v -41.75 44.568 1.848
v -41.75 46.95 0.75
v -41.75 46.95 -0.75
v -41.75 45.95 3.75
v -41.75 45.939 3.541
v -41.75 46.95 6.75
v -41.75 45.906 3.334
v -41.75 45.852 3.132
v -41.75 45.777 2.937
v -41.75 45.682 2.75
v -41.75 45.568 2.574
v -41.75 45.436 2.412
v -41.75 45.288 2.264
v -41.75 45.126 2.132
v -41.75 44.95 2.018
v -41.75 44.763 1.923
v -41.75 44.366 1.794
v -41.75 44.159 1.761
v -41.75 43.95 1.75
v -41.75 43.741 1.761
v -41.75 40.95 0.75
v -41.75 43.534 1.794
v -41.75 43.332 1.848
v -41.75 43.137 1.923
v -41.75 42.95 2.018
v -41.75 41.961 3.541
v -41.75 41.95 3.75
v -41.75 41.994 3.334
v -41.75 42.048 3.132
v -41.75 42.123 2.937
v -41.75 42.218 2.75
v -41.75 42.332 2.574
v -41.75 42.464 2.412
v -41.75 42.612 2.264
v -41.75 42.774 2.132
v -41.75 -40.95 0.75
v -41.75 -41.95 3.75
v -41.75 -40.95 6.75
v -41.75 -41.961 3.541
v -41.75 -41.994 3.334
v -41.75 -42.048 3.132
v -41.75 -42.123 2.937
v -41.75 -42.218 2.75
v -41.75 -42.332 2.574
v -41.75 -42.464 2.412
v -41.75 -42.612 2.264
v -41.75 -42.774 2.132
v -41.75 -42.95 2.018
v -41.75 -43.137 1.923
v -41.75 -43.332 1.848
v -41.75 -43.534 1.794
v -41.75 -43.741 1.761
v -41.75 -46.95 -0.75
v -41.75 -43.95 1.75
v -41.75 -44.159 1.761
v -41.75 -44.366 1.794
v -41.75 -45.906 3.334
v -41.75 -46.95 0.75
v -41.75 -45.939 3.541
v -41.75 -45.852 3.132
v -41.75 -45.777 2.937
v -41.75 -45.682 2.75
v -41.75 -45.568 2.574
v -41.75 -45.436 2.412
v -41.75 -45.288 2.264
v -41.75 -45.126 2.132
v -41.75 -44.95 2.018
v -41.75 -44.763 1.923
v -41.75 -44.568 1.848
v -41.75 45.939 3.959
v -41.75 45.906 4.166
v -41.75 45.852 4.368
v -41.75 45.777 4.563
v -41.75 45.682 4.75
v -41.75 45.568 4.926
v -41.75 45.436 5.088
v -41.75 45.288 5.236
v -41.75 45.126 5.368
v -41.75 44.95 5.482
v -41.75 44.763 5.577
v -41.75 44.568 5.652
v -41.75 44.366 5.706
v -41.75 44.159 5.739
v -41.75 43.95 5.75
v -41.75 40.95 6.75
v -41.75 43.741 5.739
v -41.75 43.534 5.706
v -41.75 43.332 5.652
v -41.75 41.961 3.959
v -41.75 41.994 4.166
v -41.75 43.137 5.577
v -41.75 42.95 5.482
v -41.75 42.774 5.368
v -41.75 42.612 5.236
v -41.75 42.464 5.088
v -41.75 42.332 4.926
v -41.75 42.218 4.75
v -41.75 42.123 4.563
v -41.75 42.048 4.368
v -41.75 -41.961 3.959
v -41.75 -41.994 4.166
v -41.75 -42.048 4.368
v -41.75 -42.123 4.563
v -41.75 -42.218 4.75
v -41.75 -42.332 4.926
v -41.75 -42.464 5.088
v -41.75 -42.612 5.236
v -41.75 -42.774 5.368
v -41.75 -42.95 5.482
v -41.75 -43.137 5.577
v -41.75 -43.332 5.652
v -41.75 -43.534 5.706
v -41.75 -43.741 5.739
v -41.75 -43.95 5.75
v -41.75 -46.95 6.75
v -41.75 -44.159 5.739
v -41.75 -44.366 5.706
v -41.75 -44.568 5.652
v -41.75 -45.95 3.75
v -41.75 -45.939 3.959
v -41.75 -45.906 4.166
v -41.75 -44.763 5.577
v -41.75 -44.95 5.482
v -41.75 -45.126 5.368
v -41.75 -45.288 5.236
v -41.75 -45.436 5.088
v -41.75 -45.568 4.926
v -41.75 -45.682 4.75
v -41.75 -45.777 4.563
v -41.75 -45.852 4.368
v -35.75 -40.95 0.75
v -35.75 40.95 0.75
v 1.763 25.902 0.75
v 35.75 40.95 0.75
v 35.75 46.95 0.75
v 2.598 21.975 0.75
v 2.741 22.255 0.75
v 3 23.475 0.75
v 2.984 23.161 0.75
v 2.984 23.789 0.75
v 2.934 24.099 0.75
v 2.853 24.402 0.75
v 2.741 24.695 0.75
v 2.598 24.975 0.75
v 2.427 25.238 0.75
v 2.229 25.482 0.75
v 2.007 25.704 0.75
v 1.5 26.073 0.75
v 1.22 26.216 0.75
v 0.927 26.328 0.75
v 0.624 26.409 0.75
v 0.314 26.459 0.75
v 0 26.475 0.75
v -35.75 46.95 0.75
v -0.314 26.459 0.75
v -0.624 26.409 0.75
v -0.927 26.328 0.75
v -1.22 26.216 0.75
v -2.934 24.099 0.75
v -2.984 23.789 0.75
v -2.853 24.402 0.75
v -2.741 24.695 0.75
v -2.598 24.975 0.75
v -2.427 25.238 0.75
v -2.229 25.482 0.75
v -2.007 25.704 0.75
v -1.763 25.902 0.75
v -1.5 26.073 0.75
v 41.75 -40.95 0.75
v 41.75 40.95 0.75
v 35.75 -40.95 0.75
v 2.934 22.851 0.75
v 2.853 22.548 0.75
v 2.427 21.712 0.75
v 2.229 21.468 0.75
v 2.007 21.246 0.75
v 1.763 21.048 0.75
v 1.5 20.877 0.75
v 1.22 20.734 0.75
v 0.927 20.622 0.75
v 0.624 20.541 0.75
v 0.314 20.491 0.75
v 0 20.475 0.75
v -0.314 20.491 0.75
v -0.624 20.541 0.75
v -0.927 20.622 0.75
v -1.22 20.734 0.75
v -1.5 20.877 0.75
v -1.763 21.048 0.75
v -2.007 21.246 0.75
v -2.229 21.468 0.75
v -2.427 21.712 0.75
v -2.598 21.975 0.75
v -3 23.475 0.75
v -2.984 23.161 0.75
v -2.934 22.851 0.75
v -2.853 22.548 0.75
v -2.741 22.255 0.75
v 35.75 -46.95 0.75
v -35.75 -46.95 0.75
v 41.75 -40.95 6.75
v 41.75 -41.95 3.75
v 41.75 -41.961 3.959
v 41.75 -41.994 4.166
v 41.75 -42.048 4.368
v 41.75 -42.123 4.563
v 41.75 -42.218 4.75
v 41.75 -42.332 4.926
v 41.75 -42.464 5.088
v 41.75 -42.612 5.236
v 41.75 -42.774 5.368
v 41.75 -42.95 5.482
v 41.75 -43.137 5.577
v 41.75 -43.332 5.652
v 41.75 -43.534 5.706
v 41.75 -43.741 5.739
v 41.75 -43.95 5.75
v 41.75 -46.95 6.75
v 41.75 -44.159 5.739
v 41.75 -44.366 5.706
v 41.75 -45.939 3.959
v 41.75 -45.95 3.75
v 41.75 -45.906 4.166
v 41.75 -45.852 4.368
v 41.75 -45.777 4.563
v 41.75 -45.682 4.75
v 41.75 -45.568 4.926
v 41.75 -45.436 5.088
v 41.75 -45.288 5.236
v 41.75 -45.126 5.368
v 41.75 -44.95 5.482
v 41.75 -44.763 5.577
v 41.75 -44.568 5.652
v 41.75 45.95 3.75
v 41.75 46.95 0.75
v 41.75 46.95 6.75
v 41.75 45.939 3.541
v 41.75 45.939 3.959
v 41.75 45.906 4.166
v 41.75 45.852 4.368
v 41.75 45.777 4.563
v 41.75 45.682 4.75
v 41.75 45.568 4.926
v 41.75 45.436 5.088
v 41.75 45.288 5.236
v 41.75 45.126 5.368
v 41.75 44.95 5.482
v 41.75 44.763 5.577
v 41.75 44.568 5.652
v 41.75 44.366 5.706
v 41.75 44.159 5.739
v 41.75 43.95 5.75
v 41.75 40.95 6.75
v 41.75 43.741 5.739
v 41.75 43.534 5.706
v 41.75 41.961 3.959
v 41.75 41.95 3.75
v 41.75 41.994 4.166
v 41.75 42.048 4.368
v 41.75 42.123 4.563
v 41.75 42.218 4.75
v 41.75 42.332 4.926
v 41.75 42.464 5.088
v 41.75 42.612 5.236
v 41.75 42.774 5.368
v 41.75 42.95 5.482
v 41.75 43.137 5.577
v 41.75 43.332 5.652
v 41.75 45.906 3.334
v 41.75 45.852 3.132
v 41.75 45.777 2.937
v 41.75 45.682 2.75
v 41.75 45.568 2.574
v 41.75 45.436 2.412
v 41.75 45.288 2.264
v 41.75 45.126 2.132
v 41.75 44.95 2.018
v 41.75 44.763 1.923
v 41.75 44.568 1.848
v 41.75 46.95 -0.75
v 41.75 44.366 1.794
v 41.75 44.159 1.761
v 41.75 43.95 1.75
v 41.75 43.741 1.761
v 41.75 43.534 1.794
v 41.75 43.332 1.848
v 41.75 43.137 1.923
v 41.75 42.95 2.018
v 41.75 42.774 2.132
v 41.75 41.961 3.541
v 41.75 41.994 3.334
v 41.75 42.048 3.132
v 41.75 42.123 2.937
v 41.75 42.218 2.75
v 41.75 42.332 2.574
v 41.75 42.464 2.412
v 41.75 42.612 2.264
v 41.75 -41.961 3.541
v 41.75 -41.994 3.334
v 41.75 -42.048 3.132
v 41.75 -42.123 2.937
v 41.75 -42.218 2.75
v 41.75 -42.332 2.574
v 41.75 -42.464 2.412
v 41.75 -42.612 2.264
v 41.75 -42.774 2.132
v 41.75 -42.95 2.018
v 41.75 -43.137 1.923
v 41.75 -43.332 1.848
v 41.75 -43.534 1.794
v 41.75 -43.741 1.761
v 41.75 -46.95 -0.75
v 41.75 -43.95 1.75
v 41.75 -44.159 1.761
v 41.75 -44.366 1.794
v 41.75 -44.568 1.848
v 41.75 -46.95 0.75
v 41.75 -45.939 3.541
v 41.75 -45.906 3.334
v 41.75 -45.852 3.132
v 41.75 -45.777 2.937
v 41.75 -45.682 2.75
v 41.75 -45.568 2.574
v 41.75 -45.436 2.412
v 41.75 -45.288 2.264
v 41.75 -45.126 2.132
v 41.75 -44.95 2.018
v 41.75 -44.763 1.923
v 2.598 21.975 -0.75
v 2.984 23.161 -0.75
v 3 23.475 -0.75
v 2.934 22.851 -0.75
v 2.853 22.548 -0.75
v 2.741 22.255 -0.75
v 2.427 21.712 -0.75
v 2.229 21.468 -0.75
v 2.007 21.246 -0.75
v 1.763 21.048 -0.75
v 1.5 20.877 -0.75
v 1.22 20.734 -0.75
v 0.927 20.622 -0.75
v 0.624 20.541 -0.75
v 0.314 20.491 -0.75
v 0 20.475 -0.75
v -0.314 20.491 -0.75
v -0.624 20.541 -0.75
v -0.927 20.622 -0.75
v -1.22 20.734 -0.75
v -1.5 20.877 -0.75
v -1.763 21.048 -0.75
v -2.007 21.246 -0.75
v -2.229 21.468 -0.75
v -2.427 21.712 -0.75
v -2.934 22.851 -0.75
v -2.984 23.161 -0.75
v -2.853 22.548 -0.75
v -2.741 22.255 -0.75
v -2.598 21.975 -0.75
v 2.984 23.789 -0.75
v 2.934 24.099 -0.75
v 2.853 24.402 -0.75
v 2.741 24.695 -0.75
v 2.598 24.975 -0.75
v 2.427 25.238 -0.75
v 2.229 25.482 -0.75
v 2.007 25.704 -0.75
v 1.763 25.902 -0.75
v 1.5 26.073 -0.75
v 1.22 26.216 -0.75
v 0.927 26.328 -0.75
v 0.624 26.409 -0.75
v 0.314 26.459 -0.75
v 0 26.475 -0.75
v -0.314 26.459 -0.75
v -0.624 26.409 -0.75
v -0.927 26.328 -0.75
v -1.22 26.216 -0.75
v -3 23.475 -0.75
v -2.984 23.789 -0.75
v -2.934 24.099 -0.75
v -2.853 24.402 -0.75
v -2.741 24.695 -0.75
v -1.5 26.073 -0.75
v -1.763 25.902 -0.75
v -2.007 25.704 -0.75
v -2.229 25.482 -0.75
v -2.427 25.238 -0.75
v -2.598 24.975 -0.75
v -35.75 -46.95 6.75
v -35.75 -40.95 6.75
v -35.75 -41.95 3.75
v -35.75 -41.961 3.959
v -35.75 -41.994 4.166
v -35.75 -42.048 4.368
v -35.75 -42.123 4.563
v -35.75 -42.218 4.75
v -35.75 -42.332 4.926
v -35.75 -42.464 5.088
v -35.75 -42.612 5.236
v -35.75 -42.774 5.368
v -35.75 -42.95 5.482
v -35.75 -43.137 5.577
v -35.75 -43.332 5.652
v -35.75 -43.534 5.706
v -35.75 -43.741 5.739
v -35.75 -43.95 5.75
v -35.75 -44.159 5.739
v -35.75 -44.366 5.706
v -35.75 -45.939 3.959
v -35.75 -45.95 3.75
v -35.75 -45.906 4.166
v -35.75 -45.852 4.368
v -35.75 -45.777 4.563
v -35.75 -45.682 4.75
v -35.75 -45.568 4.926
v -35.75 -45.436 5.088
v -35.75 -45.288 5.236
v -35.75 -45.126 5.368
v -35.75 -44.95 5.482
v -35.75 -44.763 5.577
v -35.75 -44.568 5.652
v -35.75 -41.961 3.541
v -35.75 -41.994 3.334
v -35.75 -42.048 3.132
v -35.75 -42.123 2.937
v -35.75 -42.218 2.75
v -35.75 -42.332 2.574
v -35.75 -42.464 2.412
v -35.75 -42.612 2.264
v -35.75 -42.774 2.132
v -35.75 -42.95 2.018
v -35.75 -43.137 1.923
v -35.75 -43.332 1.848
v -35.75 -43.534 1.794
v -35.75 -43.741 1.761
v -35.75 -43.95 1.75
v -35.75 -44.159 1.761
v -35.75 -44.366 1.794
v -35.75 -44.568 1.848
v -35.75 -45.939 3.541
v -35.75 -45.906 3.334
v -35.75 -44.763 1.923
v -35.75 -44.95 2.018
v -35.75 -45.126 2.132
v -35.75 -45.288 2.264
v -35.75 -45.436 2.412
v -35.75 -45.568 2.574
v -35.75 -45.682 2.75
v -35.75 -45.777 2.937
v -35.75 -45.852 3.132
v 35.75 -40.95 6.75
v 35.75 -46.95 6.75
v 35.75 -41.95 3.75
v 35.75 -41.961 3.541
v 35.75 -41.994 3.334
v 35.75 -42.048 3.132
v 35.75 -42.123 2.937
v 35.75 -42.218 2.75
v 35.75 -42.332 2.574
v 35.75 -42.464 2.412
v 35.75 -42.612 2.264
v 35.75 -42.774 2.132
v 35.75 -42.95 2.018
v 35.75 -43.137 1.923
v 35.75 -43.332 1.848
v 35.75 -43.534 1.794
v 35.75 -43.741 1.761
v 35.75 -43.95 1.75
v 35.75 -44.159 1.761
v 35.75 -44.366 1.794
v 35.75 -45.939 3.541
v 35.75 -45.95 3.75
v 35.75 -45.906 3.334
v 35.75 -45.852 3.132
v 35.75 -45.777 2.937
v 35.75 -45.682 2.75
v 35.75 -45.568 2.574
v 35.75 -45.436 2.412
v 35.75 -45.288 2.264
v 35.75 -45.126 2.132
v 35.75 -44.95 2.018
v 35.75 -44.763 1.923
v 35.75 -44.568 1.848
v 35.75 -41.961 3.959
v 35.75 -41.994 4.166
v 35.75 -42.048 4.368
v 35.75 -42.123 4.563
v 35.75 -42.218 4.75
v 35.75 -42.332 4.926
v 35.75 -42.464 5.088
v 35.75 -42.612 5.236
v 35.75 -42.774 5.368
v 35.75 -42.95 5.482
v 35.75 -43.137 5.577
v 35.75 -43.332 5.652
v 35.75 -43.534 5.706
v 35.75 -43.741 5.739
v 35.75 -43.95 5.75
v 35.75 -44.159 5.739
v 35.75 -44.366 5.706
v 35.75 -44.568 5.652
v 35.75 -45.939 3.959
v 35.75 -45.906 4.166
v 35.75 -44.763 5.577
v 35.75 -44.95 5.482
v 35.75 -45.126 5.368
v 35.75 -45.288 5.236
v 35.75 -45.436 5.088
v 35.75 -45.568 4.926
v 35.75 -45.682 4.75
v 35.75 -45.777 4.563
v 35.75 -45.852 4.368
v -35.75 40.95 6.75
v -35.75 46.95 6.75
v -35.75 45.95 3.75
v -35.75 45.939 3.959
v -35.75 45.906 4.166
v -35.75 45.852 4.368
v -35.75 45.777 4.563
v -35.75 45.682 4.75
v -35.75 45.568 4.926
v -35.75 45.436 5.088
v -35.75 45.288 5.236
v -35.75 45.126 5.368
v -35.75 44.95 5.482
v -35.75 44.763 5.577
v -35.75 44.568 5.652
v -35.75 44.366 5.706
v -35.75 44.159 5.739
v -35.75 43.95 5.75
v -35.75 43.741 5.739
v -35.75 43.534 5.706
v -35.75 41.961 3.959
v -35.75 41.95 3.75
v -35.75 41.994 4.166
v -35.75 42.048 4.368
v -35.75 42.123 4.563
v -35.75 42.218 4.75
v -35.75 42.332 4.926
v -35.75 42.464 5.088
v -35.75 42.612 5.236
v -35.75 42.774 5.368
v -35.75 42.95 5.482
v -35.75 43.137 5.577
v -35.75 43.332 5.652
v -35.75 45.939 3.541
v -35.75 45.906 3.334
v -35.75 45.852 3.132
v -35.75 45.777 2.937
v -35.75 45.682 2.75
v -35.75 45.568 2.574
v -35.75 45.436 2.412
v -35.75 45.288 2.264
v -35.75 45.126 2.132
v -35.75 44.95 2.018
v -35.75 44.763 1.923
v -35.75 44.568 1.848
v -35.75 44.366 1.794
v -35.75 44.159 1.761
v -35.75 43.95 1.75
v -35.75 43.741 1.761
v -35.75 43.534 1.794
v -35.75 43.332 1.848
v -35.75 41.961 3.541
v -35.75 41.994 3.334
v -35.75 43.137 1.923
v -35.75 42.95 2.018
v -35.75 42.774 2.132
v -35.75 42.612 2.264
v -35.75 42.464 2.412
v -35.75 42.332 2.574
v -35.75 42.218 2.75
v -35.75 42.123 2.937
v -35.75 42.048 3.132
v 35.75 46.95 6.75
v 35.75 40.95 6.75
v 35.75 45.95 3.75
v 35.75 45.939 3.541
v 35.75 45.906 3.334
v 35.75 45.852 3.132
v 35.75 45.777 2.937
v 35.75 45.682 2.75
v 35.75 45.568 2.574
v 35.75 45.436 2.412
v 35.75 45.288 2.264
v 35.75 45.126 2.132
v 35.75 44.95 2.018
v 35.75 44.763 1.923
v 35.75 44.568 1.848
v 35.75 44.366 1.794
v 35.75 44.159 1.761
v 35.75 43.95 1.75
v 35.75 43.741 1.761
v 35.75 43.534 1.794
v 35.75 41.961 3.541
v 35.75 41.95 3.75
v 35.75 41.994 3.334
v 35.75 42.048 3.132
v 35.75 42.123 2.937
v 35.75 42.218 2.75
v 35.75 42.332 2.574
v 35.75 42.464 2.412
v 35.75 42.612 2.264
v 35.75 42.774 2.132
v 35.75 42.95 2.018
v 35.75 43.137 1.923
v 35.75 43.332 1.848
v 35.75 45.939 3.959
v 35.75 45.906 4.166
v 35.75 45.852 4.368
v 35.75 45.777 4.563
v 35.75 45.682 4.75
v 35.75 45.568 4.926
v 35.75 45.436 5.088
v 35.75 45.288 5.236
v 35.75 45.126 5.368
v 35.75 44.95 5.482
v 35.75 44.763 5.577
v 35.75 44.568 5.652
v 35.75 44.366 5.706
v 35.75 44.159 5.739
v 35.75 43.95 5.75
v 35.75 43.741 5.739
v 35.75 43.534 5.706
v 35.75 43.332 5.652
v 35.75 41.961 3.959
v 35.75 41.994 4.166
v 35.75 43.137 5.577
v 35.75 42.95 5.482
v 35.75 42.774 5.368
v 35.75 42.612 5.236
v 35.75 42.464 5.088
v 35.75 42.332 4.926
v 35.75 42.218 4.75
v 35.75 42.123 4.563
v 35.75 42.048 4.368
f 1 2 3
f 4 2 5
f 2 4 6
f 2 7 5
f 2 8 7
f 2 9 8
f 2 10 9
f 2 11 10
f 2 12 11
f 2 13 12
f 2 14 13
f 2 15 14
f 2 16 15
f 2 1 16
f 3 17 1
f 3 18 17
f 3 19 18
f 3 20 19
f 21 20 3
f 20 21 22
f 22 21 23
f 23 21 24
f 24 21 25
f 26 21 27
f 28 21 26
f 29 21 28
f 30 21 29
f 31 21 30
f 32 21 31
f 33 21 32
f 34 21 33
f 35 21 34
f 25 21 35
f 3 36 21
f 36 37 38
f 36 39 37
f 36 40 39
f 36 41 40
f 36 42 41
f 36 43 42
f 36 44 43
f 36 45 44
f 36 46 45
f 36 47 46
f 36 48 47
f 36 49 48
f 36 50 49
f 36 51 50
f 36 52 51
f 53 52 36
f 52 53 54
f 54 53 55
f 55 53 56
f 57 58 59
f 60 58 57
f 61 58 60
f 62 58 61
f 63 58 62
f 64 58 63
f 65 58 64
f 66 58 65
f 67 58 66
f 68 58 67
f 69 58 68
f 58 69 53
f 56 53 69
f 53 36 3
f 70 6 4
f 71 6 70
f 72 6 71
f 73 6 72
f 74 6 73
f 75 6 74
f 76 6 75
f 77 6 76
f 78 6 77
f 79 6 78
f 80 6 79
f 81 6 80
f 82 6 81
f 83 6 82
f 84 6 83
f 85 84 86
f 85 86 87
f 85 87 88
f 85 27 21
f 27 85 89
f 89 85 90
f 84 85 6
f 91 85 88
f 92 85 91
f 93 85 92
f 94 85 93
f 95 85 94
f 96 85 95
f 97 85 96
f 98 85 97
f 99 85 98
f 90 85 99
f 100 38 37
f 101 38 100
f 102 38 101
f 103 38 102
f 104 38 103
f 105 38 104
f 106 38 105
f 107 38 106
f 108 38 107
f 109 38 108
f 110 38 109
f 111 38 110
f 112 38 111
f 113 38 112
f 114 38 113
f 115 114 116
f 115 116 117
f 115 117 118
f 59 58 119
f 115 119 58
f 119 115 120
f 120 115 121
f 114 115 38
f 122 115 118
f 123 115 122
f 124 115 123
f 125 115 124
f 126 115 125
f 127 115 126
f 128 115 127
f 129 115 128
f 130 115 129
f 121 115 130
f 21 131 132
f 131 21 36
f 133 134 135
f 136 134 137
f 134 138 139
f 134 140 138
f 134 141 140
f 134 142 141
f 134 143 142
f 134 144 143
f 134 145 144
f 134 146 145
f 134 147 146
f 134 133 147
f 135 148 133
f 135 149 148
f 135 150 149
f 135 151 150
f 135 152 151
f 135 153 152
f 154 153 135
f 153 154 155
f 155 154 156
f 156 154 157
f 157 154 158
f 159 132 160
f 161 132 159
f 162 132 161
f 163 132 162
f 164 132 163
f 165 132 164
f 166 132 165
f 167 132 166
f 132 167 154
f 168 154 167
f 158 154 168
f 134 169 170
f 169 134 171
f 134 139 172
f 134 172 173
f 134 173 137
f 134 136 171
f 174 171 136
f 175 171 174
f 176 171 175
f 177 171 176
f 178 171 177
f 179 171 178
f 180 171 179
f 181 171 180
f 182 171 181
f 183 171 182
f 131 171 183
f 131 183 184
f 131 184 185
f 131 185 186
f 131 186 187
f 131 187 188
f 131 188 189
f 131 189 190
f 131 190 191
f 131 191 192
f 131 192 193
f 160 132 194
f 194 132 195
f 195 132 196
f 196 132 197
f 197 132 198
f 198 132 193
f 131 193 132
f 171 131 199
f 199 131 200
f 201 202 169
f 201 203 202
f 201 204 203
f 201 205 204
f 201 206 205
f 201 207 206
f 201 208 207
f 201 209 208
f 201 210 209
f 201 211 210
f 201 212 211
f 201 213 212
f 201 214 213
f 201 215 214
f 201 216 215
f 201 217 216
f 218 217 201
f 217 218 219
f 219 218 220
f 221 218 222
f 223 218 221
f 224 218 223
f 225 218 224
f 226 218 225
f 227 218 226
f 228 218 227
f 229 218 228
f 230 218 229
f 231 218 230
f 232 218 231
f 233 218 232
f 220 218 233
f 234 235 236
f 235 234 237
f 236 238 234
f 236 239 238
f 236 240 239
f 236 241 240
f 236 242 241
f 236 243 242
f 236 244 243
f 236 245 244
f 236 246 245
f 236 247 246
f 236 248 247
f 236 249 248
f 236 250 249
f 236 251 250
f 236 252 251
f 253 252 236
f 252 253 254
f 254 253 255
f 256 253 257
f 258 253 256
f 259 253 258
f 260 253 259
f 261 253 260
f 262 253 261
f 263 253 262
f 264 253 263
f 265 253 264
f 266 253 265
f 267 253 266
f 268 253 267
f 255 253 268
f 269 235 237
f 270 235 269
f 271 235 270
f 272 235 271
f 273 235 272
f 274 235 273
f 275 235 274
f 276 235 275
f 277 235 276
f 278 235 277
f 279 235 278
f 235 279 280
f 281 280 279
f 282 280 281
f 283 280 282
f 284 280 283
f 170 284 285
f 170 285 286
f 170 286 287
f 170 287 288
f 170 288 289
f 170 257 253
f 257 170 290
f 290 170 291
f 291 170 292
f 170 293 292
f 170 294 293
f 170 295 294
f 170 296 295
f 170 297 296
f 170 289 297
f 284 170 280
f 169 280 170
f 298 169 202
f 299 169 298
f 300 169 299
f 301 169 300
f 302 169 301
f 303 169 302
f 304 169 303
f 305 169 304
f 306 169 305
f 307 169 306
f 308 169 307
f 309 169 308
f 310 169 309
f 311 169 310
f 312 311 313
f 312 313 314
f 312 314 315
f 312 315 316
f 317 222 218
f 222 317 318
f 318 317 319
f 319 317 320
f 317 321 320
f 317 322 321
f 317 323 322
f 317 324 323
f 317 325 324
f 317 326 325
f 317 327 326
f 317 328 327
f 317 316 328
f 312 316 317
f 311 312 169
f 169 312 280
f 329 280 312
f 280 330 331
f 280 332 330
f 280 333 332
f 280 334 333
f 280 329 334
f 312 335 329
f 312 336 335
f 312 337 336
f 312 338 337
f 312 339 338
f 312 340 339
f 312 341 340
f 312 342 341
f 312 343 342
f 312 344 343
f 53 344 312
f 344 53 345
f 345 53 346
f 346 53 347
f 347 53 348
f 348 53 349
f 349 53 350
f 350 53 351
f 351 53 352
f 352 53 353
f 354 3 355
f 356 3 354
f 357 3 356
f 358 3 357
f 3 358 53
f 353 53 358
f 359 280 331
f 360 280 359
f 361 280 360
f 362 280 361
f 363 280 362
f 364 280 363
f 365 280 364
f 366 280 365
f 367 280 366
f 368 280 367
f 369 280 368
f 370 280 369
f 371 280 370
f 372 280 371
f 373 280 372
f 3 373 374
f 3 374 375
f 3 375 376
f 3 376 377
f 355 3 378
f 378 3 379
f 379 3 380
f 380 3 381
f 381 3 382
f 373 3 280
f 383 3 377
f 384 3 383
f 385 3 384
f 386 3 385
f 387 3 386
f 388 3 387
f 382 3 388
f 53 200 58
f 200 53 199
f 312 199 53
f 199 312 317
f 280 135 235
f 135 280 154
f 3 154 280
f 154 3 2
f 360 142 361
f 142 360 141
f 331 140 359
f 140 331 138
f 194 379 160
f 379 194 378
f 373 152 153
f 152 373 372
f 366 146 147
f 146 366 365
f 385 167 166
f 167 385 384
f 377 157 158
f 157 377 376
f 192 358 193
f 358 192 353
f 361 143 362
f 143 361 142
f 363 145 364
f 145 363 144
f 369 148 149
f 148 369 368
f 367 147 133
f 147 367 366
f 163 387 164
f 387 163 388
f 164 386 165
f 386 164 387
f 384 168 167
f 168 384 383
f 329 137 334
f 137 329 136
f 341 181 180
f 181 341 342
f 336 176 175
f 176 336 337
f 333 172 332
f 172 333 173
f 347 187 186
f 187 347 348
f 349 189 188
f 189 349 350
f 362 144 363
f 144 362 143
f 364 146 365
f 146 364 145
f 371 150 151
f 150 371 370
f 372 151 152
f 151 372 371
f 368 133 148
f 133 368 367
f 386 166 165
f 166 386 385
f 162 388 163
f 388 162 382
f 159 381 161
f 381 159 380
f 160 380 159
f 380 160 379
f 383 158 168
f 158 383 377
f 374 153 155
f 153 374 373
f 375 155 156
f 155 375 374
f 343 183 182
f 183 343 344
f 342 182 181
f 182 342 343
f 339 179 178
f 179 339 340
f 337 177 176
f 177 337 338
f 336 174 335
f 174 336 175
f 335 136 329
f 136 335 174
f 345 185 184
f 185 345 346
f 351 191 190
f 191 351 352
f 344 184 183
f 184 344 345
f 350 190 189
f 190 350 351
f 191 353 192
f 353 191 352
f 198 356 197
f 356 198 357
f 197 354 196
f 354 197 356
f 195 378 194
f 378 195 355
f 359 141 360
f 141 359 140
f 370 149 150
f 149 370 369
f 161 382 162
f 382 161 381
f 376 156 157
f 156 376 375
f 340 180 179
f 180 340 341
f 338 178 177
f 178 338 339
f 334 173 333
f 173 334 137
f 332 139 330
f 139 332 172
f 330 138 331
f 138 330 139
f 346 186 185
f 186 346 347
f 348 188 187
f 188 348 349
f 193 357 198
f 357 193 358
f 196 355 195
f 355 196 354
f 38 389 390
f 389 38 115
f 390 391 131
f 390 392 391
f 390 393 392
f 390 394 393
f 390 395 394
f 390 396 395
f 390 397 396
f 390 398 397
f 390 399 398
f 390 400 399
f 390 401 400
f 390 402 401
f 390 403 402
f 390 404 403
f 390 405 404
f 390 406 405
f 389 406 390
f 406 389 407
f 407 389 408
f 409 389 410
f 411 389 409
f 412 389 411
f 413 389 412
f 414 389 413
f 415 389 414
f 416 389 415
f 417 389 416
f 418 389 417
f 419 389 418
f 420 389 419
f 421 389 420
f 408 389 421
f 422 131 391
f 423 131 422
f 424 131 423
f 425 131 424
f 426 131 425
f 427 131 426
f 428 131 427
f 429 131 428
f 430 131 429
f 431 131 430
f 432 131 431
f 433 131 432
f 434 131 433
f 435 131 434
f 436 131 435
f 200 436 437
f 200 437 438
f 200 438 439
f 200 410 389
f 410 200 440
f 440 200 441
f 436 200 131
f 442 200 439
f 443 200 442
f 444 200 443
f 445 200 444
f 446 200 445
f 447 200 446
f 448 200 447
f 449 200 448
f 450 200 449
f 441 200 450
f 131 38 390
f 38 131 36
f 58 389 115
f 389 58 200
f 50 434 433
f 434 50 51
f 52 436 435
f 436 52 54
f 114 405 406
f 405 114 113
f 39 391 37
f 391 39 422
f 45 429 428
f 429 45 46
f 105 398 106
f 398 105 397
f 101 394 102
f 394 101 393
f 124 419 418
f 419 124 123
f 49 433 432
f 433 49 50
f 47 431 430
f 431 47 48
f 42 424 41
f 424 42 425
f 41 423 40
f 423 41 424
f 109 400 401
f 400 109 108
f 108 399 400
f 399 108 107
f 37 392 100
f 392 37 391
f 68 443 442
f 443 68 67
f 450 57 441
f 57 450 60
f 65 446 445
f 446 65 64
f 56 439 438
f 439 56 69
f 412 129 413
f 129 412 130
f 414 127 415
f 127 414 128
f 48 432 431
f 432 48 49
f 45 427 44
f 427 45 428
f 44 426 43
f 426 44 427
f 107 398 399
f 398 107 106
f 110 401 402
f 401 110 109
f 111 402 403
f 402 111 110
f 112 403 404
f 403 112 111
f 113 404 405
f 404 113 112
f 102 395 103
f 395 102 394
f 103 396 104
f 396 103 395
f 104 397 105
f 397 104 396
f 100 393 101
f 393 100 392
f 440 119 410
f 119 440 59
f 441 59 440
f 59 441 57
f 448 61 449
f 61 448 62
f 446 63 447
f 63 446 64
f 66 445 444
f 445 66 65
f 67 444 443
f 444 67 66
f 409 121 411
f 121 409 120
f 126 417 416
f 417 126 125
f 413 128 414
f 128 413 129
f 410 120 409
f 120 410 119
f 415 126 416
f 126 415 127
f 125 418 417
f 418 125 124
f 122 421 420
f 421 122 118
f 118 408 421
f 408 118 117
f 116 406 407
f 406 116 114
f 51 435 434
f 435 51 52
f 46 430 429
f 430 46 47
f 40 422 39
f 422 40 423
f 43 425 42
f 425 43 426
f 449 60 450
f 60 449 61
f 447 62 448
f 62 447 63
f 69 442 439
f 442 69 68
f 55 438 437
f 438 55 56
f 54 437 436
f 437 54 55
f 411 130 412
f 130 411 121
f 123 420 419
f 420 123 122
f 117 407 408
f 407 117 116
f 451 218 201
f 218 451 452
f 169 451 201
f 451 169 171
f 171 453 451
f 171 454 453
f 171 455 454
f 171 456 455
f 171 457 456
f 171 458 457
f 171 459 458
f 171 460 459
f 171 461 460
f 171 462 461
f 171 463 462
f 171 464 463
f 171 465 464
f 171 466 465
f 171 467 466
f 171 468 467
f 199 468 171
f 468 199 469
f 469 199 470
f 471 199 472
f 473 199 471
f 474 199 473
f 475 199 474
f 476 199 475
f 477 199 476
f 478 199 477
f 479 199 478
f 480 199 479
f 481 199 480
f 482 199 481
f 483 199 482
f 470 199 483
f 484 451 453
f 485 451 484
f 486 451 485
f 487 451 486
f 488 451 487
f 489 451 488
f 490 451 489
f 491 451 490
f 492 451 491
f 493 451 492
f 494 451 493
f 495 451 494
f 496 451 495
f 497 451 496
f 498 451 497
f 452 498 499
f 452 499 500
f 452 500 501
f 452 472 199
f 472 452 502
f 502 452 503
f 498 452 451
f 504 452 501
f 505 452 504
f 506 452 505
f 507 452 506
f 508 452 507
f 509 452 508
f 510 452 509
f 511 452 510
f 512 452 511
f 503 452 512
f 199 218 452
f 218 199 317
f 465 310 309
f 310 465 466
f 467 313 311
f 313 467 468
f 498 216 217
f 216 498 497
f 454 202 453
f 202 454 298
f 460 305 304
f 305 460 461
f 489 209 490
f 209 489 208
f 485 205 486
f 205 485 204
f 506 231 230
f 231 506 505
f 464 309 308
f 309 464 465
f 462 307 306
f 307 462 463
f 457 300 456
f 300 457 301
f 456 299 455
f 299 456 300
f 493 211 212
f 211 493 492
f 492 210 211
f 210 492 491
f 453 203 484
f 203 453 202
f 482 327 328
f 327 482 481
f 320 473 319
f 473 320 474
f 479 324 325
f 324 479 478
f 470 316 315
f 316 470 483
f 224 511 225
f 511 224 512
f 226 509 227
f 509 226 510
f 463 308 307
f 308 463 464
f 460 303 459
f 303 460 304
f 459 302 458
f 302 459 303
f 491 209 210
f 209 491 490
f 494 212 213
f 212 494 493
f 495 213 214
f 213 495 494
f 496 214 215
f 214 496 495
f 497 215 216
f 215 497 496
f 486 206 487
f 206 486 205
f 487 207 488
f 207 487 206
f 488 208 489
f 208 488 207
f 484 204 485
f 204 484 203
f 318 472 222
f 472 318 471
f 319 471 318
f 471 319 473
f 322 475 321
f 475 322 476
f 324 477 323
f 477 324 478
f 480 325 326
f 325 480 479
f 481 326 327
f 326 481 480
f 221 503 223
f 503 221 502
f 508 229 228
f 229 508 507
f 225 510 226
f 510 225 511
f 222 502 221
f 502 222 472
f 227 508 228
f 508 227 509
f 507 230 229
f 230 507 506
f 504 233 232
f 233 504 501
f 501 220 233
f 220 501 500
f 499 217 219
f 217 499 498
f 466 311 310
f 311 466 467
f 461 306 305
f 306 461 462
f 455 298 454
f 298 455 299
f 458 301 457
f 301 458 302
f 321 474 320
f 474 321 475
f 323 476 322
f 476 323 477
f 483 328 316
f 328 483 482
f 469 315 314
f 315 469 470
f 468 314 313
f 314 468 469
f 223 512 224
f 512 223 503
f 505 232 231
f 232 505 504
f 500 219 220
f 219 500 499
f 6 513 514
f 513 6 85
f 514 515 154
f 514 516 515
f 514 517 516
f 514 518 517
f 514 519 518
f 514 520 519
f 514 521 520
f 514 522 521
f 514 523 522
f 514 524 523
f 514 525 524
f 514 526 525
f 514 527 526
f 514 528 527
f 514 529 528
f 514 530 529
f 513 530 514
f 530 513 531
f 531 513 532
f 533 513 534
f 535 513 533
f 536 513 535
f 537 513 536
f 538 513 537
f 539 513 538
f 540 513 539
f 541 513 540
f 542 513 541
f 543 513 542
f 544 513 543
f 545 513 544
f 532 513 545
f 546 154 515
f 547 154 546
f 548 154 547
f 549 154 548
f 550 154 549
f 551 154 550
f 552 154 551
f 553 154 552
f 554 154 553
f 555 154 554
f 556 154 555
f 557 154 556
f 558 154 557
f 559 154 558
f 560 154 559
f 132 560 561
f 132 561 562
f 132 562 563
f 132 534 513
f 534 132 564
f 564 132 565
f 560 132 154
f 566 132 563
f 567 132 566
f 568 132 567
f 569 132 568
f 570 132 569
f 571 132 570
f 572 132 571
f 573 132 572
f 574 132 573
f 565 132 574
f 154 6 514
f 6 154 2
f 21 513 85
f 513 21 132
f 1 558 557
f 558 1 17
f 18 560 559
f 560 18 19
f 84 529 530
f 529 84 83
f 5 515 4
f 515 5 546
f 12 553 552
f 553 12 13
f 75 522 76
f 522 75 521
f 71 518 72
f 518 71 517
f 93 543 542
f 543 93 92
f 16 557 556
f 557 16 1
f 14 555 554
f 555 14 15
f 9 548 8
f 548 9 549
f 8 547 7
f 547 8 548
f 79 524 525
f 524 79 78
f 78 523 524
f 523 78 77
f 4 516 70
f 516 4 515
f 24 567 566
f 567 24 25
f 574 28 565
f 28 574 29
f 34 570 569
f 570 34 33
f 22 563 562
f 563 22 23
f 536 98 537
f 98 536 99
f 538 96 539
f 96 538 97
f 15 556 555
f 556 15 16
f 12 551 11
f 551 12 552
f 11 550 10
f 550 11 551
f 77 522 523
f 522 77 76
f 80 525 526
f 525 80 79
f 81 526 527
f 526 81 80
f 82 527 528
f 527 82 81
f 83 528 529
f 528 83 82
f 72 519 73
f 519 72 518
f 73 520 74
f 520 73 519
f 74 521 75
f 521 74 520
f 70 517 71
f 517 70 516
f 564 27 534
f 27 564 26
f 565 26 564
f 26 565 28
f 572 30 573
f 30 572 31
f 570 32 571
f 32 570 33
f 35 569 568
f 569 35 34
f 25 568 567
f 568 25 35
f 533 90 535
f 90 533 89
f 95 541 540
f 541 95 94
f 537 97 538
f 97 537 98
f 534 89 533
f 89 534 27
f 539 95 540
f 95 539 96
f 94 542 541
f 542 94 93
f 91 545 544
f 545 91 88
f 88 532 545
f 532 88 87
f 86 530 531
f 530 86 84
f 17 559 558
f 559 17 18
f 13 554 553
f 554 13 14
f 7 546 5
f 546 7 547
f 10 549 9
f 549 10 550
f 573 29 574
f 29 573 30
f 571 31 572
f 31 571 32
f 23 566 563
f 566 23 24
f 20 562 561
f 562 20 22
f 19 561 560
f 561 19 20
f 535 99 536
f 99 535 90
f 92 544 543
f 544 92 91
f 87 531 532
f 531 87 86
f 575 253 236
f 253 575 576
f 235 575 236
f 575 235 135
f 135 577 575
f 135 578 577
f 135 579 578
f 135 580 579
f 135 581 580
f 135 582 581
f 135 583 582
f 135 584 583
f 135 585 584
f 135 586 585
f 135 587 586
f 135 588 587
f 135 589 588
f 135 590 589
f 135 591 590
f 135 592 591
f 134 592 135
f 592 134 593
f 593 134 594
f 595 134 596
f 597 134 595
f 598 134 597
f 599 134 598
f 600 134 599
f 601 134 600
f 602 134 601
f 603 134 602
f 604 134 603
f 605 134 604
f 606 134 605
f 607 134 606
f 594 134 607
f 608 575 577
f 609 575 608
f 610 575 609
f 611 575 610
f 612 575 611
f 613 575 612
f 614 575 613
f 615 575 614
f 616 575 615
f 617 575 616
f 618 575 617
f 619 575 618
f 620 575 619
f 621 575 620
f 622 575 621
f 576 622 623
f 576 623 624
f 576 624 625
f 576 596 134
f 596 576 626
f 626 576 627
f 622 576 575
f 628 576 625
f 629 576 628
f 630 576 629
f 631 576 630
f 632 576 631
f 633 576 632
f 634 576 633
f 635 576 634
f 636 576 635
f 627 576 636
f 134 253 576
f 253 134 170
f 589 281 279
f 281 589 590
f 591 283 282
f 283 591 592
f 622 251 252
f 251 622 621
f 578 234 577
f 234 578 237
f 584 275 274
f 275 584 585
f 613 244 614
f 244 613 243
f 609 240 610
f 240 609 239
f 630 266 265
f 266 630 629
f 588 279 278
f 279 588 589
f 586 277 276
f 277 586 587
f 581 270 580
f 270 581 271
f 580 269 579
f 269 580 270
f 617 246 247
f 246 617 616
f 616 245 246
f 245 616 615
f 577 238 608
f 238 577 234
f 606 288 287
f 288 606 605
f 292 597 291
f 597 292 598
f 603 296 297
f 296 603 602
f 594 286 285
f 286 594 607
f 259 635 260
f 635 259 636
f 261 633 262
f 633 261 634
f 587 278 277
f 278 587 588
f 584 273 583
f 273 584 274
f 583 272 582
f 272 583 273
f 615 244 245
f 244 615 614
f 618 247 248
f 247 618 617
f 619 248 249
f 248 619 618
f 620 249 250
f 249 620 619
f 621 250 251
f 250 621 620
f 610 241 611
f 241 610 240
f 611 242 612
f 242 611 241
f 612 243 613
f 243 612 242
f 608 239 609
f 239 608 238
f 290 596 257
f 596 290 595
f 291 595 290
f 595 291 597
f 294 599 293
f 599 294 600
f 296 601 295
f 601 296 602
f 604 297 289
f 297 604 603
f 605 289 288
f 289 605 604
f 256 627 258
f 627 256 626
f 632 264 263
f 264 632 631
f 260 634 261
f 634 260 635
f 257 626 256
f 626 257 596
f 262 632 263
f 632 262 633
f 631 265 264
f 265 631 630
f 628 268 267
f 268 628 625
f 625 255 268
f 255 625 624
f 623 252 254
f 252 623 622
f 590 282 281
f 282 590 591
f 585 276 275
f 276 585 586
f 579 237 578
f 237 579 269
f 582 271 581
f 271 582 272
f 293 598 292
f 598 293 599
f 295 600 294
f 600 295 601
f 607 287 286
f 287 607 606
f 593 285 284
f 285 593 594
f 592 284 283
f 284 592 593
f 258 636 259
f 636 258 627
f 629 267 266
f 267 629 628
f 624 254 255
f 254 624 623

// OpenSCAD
size_y=93.9;
size_x=68.5;

screw_size=3;

size_wall=1.5;

size_x_front=size_x+(screw_size*2+size_wall)*2;

module mount() // дупки резбова втулка
{
	difference()
	{
		cube([screw_size*2,screw_size*2,screw_size*2], center=true);
		
		cylinder(d=screw_size+1,h=screw_size*2+1, $fn=60, center=true);
	}
}

difference()
{
	cube([size_x_front,size_y,size_wall], center=true);
	
	translate([0,size_y/4,0])
	cylinder(h=size_wall+1, d=5+1, $fn=60, center=true);
}

for(y=[-1:2:1])
	{
		for(x=[-1:2:1])
			{
				translate([(size_x_front/2-screw_size)*x,(size_y/2-screw_size)*y,size_wall/2+screw_size])
				rotate([0,90,0])
				mount();
			}
	}
